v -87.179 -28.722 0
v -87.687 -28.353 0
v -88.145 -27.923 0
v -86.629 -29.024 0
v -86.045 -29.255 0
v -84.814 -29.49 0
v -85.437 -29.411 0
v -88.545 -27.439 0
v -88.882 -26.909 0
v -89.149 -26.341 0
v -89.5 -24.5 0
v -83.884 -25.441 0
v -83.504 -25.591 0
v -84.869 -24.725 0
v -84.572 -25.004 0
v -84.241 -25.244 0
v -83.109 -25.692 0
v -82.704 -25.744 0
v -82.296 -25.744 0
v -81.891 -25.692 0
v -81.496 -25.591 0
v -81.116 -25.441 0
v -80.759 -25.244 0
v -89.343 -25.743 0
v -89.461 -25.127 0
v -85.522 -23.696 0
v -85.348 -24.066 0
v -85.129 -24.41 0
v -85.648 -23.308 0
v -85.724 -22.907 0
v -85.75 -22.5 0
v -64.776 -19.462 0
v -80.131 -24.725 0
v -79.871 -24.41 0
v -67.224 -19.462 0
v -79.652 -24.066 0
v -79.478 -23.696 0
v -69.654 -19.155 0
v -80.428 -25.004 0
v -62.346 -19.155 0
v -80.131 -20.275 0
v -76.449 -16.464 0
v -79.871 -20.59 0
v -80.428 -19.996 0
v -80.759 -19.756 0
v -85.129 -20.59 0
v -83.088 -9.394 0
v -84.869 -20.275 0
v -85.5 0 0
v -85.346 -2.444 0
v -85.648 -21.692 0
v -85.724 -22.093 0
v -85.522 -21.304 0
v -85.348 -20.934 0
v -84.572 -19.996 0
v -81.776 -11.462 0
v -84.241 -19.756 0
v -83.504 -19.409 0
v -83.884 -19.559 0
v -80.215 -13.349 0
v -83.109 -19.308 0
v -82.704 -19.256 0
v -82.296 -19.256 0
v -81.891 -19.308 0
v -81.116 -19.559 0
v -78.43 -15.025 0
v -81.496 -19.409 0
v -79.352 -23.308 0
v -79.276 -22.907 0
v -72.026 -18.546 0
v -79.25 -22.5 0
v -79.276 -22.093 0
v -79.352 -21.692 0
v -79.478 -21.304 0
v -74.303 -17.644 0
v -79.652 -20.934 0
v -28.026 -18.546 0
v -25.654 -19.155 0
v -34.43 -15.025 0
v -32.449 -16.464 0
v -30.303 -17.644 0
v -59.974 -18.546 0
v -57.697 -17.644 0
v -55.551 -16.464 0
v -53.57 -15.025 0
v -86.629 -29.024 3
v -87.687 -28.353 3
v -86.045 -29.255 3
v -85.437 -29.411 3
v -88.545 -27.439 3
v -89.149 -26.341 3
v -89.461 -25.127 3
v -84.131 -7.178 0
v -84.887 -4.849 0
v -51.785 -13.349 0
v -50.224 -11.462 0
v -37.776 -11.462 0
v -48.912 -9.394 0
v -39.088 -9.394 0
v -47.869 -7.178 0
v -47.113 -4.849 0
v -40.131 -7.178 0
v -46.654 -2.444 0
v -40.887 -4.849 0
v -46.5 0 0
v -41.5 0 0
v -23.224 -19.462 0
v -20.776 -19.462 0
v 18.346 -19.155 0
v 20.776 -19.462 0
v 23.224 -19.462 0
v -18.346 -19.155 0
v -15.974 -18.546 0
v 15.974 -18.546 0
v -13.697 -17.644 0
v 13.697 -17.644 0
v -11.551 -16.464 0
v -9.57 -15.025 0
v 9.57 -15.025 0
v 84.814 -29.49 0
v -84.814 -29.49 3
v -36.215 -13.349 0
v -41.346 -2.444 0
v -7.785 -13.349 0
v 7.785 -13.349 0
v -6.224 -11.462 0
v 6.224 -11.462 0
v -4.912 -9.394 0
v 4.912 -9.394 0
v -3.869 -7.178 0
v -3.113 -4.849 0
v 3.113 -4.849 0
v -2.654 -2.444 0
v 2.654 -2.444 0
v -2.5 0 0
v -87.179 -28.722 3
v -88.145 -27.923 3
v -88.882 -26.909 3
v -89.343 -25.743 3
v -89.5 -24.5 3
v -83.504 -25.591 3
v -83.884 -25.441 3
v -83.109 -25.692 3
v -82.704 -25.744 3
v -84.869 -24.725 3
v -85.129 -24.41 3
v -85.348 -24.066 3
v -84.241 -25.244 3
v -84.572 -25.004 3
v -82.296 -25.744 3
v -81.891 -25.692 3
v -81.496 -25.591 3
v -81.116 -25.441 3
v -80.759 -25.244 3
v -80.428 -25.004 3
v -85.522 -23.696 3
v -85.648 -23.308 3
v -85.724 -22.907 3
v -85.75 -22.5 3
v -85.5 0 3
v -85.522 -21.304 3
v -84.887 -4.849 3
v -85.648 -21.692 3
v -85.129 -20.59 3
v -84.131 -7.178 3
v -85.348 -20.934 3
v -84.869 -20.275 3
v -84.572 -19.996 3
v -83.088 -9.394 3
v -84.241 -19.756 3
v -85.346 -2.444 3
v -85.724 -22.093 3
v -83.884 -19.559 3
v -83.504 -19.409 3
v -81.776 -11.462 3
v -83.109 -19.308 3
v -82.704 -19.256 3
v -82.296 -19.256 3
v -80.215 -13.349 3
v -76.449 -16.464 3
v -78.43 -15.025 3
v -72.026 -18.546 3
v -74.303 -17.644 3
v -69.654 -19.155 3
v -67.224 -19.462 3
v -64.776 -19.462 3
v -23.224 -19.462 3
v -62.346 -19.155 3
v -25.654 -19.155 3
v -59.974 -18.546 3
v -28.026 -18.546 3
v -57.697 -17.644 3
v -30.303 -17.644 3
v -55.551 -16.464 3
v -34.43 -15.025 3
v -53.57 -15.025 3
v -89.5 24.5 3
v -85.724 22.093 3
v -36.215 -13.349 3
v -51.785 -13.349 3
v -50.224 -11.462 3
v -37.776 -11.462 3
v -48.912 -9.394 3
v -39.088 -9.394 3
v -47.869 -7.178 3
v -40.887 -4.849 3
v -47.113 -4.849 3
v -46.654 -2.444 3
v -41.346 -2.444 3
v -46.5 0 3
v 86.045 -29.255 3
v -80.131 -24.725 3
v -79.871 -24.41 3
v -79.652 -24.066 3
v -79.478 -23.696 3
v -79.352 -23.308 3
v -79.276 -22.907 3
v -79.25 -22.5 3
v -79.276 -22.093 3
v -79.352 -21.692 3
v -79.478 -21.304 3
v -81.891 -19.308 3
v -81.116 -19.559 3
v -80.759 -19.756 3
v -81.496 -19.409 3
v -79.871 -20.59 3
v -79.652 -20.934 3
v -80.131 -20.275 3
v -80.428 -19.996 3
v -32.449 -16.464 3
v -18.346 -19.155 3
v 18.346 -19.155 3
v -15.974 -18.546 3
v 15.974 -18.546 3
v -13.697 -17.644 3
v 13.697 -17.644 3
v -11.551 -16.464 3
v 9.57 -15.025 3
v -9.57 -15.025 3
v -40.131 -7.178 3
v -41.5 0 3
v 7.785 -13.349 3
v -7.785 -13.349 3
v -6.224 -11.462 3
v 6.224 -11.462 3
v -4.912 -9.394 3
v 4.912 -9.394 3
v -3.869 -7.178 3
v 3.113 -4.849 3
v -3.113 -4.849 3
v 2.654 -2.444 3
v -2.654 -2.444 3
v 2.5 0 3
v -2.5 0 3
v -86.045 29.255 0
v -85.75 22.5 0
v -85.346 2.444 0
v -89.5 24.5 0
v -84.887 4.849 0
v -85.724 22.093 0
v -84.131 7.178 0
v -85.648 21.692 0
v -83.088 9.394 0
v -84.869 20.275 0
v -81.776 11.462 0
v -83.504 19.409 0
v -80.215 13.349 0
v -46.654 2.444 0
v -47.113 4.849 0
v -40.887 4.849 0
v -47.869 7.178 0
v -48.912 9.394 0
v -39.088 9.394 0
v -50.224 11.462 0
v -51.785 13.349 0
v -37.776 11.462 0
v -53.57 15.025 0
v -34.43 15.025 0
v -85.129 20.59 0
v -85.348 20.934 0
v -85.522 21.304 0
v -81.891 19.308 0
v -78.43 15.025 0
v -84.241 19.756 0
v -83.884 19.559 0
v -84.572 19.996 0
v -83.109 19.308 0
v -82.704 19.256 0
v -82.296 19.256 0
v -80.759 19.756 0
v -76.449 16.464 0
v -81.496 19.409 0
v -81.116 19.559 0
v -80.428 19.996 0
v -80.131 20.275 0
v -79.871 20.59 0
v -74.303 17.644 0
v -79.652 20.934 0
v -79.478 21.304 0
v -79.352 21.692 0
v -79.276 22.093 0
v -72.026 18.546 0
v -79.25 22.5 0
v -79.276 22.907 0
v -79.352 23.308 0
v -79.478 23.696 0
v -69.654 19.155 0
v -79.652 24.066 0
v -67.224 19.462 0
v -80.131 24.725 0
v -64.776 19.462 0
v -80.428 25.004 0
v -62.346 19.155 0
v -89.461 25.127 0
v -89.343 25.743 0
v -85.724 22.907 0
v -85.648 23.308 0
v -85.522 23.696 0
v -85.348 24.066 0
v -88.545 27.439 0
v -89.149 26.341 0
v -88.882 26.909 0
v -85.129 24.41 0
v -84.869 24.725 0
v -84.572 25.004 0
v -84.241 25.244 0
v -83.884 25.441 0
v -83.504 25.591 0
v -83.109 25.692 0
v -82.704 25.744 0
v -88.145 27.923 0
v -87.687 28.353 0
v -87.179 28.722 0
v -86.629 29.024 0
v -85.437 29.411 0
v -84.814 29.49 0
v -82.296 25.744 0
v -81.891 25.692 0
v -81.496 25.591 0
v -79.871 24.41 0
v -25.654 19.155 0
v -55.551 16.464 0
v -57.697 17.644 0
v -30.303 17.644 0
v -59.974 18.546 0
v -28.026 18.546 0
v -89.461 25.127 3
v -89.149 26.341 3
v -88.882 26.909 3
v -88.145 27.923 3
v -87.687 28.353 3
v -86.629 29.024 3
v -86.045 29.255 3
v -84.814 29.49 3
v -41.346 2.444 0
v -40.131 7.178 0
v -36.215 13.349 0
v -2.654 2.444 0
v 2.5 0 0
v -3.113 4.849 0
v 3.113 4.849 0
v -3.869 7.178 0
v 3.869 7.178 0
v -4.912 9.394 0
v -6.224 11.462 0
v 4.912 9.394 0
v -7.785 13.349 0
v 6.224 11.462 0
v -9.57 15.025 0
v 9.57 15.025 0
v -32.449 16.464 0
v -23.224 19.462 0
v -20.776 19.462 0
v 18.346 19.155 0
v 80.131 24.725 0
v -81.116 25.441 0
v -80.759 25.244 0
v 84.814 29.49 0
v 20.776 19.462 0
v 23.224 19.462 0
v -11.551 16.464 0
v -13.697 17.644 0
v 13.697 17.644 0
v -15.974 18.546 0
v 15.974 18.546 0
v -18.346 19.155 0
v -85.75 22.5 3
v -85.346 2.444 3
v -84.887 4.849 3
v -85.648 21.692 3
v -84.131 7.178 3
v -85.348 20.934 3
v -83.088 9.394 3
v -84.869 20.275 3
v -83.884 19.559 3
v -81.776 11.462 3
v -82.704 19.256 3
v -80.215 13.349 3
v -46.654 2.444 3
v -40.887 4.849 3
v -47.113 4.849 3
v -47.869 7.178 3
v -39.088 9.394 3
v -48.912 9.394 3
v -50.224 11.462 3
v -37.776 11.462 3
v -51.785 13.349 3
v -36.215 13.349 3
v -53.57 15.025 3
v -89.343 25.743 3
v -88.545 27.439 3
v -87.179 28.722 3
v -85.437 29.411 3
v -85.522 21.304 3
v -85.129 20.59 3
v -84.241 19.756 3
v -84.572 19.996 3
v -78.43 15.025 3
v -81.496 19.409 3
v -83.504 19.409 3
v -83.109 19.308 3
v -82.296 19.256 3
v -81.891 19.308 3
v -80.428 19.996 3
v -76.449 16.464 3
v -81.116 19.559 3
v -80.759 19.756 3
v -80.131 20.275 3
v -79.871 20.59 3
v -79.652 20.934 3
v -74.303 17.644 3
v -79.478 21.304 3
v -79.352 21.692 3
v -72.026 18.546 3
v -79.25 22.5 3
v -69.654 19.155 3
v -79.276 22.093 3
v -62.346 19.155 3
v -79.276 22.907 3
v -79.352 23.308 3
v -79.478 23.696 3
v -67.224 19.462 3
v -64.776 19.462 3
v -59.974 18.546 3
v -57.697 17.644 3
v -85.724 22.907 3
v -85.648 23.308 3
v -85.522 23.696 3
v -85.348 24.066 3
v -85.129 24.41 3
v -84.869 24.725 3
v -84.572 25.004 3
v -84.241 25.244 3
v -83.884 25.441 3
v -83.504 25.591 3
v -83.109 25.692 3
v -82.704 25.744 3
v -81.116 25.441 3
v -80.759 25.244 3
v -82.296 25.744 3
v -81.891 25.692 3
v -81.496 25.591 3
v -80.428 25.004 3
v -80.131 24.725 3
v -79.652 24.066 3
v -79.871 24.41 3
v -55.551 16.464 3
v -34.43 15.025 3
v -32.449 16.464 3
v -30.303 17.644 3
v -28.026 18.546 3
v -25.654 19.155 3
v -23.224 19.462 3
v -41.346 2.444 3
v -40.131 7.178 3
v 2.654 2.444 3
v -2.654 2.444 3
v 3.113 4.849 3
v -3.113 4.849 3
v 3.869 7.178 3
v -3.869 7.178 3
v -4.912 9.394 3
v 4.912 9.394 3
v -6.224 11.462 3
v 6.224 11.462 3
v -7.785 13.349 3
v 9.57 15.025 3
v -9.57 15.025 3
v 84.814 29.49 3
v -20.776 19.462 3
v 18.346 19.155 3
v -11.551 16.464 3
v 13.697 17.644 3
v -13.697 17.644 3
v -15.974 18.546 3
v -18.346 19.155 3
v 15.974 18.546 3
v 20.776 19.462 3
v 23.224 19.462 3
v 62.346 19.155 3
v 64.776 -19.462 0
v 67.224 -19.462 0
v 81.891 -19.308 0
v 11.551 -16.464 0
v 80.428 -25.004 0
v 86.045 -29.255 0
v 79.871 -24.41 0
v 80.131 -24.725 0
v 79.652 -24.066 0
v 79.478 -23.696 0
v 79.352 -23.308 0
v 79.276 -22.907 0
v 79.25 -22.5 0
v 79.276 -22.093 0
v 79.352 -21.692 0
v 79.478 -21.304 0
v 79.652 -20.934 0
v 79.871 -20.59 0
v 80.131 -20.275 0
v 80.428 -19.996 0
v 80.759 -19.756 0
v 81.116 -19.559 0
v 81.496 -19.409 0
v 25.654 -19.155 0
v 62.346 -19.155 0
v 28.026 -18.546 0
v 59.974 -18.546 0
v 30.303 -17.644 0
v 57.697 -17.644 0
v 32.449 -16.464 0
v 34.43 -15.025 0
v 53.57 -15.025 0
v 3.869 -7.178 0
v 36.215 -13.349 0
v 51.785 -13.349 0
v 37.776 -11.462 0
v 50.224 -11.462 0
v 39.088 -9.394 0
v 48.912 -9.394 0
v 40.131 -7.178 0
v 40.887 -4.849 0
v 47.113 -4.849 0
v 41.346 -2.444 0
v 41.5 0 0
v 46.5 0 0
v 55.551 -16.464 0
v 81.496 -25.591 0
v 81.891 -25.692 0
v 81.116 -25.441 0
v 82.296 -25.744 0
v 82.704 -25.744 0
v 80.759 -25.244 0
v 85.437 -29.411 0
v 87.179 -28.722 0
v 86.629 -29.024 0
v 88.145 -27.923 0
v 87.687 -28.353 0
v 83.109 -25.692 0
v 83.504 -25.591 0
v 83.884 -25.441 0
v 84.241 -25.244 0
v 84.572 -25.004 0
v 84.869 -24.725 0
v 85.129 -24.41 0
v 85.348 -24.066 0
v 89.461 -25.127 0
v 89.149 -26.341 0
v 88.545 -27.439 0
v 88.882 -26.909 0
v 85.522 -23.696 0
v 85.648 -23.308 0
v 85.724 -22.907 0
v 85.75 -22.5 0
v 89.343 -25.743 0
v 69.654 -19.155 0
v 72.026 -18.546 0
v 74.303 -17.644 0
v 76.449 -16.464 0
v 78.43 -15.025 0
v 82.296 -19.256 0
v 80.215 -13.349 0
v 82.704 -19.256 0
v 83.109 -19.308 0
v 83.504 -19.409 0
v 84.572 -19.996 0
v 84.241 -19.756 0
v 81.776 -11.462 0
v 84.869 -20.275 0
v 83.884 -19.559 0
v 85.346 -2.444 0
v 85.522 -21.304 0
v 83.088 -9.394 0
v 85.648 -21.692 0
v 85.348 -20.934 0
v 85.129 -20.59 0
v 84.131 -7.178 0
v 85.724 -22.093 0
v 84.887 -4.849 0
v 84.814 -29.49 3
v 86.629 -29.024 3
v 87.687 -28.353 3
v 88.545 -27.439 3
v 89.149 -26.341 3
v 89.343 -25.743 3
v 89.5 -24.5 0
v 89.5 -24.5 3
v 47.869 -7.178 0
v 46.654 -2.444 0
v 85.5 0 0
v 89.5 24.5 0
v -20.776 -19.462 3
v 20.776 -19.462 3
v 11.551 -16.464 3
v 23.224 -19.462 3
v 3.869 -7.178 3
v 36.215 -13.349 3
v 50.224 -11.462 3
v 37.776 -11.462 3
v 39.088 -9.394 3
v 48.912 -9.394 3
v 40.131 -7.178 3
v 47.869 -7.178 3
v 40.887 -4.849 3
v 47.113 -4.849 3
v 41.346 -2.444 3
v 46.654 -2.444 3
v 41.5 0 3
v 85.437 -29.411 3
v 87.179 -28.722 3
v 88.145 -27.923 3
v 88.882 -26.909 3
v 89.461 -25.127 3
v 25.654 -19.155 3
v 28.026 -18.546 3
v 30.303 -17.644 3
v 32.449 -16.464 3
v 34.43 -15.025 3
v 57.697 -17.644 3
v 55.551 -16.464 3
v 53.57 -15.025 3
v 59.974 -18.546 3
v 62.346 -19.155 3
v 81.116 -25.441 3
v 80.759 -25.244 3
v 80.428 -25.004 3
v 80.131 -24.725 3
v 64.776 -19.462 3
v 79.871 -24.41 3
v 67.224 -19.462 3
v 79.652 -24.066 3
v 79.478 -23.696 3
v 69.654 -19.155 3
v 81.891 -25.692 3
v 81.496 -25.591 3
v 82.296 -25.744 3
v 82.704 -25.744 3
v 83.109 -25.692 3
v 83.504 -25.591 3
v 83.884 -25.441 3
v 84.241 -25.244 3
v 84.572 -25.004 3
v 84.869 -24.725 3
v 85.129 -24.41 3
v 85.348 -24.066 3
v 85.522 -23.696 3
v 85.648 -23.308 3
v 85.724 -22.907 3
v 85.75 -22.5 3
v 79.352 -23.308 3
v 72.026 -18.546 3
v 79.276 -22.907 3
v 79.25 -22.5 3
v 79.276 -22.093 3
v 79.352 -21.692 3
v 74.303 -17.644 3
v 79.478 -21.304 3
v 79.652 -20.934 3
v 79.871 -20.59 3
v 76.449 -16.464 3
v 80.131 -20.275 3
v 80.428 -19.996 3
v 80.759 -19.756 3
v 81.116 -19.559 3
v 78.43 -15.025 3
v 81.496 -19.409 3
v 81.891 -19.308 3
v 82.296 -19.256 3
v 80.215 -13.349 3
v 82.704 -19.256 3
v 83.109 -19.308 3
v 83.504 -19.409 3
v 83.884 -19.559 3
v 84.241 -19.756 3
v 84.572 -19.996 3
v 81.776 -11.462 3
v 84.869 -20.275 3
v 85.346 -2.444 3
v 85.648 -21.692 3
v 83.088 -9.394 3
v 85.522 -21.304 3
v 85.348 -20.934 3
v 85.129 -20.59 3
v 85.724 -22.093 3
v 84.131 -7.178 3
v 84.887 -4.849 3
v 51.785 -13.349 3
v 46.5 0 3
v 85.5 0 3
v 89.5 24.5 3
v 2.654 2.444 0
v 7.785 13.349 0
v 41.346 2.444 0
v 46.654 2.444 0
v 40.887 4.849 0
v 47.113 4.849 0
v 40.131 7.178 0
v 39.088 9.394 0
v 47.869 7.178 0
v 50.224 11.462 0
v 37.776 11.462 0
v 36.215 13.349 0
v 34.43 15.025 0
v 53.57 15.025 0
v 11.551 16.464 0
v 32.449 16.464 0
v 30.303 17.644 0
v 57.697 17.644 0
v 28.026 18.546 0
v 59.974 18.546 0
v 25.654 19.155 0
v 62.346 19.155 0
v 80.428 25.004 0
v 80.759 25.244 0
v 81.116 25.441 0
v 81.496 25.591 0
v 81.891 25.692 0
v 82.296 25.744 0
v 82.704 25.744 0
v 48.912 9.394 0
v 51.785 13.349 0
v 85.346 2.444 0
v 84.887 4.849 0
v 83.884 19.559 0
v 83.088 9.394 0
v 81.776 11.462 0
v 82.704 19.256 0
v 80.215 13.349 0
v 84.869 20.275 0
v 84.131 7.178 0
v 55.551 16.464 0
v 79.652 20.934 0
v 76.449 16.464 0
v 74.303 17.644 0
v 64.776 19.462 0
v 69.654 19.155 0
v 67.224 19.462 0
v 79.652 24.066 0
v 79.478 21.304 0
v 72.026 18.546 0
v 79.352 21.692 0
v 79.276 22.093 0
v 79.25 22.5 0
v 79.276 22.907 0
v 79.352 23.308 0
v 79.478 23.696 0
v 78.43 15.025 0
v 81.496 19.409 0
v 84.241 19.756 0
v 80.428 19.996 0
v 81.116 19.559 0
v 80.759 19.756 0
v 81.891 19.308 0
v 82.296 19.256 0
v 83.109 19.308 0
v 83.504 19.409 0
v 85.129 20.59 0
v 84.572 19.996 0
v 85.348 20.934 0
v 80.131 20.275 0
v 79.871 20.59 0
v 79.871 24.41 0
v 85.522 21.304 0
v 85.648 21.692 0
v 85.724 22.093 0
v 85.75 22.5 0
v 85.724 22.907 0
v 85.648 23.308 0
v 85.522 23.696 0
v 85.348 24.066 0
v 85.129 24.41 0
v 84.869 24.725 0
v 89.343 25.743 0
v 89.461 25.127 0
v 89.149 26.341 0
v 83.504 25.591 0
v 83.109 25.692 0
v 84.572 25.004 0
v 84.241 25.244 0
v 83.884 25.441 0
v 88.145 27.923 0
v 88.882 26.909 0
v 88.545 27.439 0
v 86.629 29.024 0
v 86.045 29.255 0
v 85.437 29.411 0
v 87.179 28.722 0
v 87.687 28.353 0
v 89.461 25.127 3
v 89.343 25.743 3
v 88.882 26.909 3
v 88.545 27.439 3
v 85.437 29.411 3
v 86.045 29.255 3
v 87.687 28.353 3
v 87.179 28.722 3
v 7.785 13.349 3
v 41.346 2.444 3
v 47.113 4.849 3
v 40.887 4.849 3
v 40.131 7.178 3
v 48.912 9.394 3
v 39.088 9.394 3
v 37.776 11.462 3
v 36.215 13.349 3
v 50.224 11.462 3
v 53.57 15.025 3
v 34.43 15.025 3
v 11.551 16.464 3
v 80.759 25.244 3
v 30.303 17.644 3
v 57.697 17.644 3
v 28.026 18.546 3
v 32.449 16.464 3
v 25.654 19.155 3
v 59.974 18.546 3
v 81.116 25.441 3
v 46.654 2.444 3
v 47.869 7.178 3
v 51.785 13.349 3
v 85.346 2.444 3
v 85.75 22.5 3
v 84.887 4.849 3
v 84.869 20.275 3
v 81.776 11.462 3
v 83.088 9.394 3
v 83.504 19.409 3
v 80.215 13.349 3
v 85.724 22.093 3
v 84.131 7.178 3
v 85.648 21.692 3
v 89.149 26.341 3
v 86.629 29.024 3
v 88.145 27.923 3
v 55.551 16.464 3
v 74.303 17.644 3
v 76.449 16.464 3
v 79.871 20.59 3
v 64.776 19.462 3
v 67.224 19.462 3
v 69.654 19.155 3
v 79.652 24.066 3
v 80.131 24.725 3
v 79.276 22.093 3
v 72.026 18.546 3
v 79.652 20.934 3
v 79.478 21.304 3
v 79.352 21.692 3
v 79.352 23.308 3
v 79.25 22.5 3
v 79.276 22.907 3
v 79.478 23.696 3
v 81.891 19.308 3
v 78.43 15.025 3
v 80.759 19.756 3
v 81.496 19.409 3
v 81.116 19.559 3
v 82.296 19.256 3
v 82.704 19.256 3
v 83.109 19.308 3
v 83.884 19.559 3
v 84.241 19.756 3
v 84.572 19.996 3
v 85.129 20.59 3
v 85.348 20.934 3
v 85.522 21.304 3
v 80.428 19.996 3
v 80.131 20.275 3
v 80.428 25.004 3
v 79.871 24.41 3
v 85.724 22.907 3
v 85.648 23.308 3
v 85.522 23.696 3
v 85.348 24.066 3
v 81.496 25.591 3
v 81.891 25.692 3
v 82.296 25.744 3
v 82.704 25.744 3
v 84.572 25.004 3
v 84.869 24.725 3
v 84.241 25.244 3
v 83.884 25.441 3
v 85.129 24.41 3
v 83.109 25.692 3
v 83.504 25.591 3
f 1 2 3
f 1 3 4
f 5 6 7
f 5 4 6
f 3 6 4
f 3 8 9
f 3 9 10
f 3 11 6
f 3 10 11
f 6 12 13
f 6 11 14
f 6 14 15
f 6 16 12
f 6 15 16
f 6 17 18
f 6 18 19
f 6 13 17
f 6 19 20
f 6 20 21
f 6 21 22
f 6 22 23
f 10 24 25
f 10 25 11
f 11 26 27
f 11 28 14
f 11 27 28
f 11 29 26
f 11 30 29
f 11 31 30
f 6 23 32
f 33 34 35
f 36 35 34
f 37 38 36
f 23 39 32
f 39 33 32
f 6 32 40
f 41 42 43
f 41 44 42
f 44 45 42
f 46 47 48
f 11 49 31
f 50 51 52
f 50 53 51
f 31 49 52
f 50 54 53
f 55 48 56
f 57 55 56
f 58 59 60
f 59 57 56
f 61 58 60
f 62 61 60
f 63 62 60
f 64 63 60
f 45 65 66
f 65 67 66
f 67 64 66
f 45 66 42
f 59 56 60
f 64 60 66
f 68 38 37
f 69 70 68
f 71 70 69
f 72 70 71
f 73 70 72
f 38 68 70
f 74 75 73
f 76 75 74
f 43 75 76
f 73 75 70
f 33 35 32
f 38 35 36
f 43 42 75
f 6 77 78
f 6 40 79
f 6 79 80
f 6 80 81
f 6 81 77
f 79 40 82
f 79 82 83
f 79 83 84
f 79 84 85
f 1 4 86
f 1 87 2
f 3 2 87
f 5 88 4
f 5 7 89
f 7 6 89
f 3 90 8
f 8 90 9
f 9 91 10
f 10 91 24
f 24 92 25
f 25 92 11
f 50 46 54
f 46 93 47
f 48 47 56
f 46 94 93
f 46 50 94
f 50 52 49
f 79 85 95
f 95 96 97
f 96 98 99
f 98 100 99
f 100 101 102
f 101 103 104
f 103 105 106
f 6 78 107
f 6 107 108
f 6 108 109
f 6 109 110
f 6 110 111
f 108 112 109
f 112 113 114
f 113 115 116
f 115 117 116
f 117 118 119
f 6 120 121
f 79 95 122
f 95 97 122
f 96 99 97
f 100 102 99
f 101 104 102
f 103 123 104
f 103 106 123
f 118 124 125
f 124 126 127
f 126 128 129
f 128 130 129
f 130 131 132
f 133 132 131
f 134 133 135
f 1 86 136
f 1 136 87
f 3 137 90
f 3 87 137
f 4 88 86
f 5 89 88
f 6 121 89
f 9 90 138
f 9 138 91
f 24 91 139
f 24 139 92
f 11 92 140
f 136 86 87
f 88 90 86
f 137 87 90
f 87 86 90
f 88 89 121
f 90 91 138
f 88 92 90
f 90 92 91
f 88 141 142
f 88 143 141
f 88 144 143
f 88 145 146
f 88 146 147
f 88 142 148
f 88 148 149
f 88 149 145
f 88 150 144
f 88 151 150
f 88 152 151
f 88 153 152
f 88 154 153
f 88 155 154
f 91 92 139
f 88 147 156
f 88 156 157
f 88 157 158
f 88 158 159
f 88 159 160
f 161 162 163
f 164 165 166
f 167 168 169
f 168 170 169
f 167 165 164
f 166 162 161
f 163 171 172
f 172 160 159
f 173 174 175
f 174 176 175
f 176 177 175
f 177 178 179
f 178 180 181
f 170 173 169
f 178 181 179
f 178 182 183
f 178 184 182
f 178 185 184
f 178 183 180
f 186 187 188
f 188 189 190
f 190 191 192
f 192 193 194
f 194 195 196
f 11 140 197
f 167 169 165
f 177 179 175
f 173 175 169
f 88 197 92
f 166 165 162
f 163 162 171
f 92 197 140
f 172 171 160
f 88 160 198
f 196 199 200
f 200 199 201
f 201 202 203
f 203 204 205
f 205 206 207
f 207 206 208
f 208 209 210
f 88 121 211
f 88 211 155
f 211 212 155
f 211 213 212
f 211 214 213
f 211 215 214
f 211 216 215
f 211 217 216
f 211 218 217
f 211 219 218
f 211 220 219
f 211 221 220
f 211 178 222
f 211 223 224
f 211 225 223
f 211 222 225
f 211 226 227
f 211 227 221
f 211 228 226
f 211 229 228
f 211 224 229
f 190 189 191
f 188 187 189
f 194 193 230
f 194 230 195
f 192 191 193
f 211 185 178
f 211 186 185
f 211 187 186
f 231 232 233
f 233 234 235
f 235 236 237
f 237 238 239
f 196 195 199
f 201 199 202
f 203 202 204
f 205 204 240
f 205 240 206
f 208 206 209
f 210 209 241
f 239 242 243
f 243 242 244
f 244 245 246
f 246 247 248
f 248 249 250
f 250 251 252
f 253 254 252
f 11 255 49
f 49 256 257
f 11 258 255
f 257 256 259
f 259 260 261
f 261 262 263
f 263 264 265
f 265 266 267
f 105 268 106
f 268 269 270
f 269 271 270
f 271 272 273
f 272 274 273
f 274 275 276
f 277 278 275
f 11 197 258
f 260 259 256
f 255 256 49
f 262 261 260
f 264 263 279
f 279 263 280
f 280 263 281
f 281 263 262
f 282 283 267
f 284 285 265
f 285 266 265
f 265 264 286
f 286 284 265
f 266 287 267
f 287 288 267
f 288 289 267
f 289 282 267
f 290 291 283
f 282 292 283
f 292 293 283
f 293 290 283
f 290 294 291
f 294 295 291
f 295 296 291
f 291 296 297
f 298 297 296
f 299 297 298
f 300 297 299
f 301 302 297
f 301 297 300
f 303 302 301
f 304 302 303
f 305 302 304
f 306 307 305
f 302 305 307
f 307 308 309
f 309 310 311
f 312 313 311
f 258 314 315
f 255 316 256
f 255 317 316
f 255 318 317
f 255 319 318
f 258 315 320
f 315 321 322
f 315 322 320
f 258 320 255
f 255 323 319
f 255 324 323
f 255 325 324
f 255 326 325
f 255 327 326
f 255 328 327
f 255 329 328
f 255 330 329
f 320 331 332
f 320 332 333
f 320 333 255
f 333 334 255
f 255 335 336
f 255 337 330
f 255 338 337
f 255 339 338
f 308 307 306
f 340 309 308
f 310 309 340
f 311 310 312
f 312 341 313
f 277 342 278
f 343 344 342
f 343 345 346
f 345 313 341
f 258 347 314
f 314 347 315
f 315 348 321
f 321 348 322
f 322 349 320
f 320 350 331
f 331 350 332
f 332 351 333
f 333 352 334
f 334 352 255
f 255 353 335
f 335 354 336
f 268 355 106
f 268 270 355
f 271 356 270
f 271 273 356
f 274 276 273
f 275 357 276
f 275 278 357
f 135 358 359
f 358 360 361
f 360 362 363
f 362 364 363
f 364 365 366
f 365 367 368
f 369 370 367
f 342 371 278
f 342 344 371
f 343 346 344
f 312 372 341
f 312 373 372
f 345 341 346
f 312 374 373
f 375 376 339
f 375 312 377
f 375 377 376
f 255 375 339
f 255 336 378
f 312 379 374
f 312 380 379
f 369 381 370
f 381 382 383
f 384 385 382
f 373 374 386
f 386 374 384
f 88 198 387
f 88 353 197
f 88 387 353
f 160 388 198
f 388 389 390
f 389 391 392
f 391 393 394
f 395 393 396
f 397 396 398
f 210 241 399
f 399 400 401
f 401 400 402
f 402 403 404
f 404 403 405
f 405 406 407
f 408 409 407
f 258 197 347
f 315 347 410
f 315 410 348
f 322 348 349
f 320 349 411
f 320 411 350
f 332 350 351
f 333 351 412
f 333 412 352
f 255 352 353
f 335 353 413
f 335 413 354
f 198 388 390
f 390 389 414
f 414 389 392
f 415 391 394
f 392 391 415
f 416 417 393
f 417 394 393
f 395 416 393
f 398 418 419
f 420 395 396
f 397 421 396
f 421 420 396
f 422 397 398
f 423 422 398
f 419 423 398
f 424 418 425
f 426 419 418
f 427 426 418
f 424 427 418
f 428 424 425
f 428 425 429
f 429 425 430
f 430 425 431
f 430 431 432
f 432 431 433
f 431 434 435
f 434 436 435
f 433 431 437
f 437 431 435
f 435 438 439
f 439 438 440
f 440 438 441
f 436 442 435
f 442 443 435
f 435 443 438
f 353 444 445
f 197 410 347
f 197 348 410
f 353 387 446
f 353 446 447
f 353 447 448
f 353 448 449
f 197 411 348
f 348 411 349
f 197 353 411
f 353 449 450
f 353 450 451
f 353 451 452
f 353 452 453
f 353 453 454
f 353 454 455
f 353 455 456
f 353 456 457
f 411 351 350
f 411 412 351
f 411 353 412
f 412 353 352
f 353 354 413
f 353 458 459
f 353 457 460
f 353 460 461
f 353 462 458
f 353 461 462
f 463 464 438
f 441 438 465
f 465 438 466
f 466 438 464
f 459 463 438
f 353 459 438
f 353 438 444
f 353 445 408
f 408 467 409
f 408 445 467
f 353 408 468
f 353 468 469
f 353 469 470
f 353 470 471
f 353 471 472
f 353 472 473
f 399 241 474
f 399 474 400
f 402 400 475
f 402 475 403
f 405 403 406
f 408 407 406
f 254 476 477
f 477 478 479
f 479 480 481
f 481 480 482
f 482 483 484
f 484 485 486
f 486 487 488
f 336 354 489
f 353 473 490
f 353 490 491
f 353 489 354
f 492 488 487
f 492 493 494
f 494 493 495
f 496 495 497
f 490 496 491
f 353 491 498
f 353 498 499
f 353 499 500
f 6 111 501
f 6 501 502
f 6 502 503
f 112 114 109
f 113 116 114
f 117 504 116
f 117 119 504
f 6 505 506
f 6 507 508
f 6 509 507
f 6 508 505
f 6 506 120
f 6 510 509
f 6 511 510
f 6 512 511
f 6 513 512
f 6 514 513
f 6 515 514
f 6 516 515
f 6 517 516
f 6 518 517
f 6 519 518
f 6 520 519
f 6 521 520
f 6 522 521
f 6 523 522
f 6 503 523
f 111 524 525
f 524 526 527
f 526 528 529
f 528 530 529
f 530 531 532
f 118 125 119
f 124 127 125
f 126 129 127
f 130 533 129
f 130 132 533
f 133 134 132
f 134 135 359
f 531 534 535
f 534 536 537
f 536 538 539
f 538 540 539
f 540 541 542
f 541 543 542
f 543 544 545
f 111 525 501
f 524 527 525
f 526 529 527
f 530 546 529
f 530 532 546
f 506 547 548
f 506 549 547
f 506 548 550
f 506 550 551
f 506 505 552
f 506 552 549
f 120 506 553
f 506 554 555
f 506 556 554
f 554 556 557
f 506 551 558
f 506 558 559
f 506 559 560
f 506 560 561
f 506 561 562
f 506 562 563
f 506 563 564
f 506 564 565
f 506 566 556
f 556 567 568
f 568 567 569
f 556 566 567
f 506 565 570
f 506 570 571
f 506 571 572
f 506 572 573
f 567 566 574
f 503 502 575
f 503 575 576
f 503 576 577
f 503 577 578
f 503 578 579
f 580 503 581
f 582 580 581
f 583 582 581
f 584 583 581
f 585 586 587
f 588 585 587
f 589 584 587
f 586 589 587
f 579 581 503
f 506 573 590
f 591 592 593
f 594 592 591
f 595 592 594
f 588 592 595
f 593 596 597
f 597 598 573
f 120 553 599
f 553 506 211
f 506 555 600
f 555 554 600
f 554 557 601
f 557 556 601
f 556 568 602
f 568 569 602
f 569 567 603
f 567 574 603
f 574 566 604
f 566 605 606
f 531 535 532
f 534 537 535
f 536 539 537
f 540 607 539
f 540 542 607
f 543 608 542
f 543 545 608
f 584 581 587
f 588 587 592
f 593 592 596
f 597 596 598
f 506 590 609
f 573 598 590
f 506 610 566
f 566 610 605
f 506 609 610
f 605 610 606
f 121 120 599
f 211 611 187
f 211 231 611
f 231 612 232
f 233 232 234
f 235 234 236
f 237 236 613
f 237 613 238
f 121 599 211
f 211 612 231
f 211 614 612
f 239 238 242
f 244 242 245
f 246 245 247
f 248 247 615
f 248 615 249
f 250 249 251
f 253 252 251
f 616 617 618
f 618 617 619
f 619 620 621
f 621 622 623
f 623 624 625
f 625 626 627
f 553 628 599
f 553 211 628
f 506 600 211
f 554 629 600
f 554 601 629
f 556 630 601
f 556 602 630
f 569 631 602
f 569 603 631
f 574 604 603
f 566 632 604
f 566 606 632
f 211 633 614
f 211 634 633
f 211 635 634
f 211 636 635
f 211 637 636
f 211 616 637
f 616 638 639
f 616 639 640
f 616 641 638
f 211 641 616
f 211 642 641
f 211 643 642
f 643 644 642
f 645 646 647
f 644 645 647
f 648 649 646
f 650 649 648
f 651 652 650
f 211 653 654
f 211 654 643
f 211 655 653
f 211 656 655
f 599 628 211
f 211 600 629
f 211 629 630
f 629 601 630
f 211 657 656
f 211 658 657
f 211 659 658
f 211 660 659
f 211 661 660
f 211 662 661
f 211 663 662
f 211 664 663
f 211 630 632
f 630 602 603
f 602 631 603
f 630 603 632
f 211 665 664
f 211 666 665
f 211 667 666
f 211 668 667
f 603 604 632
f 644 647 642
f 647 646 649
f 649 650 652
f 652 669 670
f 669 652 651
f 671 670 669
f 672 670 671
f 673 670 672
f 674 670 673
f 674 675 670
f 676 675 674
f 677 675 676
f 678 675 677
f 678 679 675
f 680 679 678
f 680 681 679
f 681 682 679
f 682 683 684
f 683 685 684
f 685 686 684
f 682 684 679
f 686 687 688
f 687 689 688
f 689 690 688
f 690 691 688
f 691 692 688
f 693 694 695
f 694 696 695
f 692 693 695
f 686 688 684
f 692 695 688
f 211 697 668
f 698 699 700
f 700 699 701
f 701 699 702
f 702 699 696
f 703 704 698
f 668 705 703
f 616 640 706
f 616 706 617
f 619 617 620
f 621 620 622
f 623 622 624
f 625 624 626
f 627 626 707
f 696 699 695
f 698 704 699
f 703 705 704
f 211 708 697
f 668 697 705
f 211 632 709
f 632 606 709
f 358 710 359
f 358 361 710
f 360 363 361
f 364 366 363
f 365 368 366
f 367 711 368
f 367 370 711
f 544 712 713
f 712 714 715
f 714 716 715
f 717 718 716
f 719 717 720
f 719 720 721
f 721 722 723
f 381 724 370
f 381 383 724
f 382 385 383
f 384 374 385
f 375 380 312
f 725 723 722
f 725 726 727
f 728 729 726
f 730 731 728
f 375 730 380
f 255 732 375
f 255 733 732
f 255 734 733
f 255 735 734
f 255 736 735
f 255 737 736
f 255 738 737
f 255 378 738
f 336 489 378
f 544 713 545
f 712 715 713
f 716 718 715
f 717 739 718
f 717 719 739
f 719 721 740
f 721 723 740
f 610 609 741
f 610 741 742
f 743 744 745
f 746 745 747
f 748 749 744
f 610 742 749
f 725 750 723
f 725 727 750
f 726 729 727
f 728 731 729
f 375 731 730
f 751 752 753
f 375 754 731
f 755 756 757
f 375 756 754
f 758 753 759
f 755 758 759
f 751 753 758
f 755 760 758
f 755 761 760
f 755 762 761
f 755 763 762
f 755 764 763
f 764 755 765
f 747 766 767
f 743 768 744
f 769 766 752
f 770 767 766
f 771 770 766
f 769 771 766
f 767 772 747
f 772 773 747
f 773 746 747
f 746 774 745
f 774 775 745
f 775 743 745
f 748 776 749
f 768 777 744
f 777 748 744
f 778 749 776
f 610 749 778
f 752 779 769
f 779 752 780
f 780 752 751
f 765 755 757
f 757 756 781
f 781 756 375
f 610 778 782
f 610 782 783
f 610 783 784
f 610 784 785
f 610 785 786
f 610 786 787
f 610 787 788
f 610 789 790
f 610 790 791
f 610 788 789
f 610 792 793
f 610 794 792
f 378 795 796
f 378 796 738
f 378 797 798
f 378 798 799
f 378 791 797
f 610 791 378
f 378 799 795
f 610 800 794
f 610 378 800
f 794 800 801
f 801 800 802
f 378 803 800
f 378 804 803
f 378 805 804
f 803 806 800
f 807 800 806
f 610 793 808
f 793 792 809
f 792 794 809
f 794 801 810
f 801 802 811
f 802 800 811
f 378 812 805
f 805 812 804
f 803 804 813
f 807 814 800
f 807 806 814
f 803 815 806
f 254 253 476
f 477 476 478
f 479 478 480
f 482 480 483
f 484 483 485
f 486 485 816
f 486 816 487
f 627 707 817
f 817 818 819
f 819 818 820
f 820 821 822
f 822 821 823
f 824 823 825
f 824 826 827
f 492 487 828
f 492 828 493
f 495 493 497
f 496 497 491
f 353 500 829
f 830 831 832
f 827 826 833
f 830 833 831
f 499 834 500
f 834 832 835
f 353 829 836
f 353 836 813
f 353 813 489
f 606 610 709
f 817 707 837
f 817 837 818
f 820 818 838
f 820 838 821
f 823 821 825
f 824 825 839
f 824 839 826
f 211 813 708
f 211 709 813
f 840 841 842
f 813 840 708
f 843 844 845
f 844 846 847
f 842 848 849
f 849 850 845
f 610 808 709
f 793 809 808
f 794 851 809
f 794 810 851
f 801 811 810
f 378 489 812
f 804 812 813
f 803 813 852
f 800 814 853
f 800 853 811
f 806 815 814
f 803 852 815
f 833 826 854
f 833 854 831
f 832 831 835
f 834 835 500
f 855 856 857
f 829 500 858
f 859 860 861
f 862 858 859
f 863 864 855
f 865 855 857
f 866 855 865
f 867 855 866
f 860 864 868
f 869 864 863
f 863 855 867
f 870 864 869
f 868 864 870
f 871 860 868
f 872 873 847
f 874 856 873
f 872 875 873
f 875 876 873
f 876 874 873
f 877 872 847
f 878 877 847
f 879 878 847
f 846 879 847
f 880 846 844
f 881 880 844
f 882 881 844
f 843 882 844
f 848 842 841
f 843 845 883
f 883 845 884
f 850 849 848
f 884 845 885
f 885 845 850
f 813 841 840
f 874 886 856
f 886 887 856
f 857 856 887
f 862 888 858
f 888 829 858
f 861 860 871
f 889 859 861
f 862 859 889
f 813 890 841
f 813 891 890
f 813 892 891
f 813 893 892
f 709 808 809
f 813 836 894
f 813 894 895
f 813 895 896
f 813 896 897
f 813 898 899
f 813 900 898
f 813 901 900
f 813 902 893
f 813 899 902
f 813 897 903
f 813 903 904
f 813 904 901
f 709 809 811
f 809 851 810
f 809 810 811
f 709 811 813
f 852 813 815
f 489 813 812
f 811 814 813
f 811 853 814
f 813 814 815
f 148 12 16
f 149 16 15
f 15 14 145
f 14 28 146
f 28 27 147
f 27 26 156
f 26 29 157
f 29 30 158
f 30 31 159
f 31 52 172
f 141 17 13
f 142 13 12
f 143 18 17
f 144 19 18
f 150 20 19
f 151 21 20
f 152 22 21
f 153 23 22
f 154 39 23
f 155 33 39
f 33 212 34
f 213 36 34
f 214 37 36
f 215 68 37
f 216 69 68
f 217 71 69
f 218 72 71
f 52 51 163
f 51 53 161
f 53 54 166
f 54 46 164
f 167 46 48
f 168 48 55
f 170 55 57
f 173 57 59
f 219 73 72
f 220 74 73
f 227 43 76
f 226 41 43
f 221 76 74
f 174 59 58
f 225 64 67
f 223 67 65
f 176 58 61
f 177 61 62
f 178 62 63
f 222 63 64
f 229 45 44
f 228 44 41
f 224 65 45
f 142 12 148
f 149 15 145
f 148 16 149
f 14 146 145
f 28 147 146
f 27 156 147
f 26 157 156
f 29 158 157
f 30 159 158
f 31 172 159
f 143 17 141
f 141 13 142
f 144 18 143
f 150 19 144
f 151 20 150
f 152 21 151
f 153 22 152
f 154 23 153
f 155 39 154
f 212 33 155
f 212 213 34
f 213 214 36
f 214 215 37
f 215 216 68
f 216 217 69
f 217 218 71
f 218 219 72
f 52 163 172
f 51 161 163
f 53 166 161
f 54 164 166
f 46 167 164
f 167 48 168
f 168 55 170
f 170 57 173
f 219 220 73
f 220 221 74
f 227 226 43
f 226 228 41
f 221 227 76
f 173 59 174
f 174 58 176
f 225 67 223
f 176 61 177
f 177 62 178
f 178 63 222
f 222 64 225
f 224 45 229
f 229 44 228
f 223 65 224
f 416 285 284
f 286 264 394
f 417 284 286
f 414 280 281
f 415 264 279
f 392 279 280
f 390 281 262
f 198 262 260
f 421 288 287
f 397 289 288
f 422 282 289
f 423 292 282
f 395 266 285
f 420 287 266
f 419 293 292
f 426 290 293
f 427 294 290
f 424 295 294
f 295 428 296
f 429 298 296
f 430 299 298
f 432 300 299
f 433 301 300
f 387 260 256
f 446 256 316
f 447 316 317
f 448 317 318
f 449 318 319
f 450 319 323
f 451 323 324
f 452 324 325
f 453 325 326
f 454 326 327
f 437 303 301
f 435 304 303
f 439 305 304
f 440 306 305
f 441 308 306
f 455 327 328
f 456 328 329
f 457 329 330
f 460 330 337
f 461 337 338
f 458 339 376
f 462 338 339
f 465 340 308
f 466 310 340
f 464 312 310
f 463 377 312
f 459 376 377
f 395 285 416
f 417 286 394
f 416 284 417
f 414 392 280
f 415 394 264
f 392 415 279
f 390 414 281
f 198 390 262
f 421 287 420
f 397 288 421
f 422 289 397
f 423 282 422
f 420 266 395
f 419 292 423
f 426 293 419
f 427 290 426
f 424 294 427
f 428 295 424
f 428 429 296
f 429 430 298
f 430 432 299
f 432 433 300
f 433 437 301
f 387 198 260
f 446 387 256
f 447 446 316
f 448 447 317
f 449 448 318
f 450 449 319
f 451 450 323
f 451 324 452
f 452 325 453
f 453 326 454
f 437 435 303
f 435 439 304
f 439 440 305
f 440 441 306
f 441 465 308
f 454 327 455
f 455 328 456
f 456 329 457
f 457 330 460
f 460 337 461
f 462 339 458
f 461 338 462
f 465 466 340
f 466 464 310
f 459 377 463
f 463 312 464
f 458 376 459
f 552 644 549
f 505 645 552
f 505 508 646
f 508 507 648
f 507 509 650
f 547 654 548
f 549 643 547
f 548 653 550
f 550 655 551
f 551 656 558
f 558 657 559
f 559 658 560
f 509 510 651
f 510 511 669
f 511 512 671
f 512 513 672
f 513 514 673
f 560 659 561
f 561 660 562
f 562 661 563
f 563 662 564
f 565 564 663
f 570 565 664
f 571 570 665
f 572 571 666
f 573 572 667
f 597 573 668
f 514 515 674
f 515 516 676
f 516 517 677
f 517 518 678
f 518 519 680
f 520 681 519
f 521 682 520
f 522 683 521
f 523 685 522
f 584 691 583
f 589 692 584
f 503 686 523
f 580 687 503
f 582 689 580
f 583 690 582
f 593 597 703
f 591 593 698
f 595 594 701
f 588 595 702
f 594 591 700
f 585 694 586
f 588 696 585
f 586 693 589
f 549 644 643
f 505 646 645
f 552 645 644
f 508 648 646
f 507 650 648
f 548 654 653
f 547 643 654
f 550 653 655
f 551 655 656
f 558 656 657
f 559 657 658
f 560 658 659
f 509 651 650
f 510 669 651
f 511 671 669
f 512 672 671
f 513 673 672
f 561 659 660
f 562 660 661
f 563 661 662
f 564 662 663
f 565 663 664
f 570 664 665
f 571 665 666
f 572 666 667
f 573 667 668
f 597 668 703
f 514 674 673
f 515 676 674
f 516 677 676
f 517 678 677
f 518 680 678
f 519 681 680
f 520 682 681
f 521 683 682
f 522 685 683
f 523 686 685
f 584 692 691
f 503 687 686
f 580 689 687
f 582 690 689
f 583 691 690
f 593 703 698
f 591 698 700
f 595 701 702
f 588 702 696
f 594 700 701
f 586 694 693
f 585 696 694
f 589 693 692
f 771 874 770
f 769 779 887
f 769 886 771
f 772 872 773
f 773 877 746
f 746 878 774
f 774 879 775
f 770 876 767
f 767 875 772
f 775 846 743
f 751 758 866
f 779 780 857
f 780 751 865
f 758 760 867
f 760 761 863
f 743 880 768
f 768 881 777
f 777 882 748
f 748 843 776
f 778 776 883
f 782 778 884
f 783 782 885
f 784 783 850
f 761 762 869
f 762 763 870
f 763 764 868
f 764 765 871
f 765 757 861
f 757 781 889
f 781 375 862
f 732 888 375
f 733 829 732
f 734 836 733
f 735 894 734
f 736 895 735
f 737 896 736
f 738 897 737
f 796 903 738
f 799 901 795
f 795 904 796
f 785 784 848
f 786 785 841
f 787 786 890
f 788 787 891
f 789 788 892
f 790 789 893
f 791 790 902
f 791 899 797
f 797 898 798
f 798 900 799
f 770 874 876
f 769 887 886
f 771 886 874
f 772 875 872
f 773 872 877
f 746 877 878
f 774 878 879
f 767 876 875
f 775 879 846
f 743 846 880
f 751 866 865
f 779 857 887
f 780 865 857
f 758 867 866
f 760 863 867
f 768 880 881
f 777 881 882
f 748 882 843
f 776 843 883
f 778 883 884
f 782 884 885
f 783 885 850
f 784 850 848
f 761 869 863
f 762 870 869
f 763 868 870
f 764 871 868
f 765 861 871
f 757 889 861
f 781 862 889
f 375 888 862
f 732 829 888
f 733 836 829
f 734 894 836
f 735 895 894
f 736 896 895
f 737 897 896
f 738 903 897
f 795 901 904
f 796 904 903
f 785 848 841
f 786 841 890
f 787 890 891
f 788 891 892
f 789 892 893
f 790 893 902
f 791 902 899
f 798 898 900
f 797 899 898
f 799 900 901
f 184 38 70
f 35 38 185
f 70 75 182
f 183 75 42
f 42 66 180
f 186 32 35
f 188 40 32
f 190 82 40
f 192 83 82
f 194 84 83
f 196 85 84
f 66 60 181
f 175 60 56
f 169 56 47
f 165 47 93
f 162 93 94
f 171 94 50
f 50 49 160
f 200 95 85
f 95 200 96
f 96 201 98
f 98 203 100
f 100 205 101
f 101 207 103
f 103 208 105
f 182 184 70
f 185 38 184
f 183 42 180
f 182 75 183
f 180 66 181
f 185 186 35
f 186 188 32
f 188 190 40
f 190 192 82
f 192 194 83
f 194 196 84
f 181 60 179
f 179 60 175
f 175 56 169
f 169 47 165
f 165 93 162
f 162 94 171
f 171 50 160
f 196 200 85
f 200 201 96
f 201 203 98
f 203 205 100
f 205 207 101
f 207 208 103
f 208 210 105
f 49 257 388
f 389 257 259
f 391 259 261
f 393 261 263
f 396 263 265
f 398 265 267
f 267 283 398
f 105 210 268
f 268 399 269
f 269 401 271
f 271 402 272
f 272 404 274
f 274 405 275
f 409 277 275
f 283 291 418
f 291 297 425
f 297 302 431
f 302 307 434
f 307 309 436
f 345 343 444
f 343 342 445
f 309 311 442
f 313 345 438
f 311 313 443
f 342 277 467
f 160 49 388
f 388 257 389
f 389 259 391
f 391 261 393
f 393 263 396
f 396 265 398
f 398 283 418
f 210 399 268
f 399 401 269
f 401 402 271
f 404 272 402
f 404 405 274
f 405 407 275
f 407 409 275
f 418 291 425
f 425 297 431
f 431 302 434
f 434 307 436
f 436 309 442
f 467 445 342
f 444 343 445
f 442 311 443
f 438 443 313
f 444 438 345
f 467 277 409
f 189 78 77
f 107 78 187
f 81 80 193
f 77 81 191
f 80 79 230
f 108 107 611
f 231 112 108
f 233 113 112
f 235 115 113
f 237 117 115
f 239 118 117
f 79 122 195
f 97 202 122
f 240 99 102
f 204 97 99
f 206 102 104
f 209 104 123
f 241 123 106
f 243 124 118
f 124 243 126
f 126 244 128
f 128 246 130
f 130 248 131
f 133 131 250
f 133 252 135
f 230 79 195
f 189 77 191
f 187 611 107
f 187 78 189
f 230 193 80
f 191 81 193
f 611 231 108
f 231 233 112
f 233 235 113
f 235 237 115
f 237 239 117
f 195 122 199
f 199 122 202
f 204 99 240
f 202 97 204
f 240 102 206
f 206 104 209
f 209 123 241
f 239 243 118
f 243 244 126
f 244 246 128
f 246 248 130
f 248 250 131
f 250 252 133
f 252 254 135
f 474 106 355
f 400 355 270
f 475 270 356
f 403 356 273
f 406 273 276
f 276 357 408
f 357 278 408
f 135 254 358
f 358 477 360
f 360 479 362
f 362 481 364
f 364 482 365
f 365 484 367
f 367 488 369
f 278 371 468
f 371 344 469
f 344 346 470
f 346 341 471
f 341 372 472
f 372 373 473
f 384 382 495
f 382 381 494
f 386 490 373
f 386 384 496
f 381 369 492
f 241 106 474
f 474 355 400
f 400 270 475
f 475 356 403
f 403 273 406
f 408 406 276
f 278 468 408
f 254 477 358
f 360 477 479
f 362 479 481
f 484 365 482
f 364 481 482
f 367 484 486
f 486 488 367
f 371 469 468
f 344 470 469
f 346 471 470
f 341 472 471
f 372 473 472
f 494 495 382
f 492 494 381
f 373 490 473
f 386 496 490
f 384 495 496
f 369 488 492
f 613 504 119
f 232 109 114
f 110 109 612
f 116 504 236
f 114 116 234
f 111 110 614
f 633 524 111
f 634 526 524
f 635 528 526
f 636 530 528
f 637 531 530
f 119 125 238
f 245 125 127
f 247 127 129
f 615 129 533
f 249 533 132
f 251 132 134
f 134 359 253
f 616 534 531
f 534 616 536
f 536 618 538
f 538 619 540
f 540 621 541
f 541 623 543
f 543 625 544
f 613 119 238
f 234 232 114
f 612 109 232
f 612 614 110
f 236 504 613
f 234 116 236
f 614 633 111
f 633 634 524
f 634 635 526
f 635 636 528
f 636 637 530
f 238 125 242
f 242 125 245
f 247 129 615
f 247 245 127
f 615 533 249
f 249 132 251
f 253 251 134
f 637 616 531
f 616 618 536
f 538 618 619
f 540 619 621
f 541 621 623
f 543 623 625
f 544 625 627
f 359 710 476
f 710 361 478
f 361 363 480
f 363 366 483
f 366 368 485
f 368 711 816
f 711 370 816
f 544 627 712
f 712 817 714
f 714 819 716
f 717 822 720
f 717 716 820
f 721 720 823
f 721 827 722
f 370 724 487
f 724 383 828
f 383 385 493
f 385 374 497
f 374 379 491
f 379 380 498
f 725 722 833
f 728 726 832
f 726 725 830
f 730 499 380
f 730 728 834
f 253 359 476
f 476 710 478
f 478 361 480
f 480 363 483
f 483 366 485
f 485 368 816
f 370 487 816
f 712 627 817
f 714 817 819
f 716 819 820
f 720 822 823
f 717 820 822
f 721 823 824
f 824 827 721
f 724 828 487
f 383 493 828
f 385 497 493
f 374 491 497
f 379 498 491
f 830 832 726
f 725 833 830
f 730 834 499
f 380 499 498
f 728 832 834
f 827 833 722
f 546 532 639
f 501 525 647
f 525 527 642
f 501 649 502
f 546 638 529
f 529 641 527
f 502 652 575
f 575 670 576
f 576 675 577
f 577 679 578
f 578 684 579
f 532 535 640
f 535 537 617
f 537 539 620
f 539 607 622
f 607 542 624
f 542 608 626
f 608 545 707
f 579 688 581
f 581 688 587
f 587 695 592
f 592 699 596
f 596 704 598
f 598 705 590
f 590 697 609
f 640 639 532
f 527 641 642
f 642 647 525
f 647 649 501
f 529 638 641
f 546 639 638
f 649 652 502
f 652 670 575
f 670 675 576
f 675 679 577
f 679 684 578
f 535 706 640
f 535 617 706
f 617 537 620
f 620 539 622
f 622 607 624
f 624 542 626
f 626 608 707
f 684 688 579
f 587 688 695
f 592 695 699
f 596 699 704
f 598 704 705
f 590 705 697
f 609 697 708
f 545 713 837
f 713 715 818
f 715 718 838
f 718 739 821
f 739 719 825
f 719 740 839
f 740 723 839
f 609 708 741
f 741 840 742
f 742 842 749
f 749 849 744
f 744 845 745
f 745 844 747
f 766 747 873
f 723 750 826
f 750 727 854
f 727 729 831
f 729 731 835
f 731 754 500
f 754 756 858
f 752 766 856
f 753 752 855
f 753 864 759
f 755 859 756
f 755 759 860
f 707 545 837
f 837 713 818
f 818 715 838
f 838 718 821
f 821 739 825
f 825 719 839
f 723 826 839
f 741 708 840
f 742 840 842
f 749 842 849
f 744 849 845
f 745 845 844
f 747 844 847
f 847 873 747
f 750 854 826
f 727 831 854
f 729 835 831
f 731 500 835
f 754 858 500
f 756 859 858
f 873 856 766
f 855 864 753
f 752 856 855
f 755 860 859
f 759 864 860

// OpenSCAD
$fn = 50;

difference() {
	union() {
		hull() {
			translate(v = [-84.5, 24.5, 0]) {
				cylinder(h = 3, r = 5);
			}
			translate(v = [84.5, 24.5, 0]) {
				cylinder(h = 3, r = 5);
			}
			translate(v = [-84.5, -24.5, 0]) {
				cylinder(h = 3, r = 5);
			}
			translate(v = [84.5, -24.5, 0]) {
				cylinder(h = 3, r = 5);
			}
		}
	}
	union() {
		translate(v = [-82.5, -22.5, -100.0]) {
			cylinder(h = 200, r = 3.25);
		}
		translate(v = [-82.5, 22.5, -100.0]) {
			cylinder(h = 200, r = 3.25);
		}
		translate(v = [82.5, -22.5, -100.0]) {
			cylinder(h = 200, r = 3.25);
		}
		translate(v = [82.5, 22.5, -100.0]) {
			cylinder(h = 200, r = 3.25);
		}
		translate(v = [-82.5, -22.5, -100.0]) {
			cylinder(h = 200, r = 1.8);
		}
		translate(v = [-82.5, 22.5, -100.0]) {
			cylinder(h = 200, r = 1.8);
		}
		translate(v = [82.5, -22.5, -100.0]) {
			cylinder(h = 200, r = 1.8);
		}
		translate(v = [82.5, 22.5, -100.0]) {
			cylinder(h = 200, r = 1.8);
		}
		translate(v = [-66.0, 0, 0.0]) {
			cylinder(h = 3, r = 19.5);
		}
		translate(v = [-22.0, 0, 0.0]) {
			cylinder(h = 3, r = 19.5);
		}
		translate(v = [22.0, 0, 0.0]) {
			cylinder(h = 3, r = 19.5);
		}
		translate(v = [66.0, 0, 0.0]) {
			cylinder(h = 3, r = 19.5);
		}
	}
}
